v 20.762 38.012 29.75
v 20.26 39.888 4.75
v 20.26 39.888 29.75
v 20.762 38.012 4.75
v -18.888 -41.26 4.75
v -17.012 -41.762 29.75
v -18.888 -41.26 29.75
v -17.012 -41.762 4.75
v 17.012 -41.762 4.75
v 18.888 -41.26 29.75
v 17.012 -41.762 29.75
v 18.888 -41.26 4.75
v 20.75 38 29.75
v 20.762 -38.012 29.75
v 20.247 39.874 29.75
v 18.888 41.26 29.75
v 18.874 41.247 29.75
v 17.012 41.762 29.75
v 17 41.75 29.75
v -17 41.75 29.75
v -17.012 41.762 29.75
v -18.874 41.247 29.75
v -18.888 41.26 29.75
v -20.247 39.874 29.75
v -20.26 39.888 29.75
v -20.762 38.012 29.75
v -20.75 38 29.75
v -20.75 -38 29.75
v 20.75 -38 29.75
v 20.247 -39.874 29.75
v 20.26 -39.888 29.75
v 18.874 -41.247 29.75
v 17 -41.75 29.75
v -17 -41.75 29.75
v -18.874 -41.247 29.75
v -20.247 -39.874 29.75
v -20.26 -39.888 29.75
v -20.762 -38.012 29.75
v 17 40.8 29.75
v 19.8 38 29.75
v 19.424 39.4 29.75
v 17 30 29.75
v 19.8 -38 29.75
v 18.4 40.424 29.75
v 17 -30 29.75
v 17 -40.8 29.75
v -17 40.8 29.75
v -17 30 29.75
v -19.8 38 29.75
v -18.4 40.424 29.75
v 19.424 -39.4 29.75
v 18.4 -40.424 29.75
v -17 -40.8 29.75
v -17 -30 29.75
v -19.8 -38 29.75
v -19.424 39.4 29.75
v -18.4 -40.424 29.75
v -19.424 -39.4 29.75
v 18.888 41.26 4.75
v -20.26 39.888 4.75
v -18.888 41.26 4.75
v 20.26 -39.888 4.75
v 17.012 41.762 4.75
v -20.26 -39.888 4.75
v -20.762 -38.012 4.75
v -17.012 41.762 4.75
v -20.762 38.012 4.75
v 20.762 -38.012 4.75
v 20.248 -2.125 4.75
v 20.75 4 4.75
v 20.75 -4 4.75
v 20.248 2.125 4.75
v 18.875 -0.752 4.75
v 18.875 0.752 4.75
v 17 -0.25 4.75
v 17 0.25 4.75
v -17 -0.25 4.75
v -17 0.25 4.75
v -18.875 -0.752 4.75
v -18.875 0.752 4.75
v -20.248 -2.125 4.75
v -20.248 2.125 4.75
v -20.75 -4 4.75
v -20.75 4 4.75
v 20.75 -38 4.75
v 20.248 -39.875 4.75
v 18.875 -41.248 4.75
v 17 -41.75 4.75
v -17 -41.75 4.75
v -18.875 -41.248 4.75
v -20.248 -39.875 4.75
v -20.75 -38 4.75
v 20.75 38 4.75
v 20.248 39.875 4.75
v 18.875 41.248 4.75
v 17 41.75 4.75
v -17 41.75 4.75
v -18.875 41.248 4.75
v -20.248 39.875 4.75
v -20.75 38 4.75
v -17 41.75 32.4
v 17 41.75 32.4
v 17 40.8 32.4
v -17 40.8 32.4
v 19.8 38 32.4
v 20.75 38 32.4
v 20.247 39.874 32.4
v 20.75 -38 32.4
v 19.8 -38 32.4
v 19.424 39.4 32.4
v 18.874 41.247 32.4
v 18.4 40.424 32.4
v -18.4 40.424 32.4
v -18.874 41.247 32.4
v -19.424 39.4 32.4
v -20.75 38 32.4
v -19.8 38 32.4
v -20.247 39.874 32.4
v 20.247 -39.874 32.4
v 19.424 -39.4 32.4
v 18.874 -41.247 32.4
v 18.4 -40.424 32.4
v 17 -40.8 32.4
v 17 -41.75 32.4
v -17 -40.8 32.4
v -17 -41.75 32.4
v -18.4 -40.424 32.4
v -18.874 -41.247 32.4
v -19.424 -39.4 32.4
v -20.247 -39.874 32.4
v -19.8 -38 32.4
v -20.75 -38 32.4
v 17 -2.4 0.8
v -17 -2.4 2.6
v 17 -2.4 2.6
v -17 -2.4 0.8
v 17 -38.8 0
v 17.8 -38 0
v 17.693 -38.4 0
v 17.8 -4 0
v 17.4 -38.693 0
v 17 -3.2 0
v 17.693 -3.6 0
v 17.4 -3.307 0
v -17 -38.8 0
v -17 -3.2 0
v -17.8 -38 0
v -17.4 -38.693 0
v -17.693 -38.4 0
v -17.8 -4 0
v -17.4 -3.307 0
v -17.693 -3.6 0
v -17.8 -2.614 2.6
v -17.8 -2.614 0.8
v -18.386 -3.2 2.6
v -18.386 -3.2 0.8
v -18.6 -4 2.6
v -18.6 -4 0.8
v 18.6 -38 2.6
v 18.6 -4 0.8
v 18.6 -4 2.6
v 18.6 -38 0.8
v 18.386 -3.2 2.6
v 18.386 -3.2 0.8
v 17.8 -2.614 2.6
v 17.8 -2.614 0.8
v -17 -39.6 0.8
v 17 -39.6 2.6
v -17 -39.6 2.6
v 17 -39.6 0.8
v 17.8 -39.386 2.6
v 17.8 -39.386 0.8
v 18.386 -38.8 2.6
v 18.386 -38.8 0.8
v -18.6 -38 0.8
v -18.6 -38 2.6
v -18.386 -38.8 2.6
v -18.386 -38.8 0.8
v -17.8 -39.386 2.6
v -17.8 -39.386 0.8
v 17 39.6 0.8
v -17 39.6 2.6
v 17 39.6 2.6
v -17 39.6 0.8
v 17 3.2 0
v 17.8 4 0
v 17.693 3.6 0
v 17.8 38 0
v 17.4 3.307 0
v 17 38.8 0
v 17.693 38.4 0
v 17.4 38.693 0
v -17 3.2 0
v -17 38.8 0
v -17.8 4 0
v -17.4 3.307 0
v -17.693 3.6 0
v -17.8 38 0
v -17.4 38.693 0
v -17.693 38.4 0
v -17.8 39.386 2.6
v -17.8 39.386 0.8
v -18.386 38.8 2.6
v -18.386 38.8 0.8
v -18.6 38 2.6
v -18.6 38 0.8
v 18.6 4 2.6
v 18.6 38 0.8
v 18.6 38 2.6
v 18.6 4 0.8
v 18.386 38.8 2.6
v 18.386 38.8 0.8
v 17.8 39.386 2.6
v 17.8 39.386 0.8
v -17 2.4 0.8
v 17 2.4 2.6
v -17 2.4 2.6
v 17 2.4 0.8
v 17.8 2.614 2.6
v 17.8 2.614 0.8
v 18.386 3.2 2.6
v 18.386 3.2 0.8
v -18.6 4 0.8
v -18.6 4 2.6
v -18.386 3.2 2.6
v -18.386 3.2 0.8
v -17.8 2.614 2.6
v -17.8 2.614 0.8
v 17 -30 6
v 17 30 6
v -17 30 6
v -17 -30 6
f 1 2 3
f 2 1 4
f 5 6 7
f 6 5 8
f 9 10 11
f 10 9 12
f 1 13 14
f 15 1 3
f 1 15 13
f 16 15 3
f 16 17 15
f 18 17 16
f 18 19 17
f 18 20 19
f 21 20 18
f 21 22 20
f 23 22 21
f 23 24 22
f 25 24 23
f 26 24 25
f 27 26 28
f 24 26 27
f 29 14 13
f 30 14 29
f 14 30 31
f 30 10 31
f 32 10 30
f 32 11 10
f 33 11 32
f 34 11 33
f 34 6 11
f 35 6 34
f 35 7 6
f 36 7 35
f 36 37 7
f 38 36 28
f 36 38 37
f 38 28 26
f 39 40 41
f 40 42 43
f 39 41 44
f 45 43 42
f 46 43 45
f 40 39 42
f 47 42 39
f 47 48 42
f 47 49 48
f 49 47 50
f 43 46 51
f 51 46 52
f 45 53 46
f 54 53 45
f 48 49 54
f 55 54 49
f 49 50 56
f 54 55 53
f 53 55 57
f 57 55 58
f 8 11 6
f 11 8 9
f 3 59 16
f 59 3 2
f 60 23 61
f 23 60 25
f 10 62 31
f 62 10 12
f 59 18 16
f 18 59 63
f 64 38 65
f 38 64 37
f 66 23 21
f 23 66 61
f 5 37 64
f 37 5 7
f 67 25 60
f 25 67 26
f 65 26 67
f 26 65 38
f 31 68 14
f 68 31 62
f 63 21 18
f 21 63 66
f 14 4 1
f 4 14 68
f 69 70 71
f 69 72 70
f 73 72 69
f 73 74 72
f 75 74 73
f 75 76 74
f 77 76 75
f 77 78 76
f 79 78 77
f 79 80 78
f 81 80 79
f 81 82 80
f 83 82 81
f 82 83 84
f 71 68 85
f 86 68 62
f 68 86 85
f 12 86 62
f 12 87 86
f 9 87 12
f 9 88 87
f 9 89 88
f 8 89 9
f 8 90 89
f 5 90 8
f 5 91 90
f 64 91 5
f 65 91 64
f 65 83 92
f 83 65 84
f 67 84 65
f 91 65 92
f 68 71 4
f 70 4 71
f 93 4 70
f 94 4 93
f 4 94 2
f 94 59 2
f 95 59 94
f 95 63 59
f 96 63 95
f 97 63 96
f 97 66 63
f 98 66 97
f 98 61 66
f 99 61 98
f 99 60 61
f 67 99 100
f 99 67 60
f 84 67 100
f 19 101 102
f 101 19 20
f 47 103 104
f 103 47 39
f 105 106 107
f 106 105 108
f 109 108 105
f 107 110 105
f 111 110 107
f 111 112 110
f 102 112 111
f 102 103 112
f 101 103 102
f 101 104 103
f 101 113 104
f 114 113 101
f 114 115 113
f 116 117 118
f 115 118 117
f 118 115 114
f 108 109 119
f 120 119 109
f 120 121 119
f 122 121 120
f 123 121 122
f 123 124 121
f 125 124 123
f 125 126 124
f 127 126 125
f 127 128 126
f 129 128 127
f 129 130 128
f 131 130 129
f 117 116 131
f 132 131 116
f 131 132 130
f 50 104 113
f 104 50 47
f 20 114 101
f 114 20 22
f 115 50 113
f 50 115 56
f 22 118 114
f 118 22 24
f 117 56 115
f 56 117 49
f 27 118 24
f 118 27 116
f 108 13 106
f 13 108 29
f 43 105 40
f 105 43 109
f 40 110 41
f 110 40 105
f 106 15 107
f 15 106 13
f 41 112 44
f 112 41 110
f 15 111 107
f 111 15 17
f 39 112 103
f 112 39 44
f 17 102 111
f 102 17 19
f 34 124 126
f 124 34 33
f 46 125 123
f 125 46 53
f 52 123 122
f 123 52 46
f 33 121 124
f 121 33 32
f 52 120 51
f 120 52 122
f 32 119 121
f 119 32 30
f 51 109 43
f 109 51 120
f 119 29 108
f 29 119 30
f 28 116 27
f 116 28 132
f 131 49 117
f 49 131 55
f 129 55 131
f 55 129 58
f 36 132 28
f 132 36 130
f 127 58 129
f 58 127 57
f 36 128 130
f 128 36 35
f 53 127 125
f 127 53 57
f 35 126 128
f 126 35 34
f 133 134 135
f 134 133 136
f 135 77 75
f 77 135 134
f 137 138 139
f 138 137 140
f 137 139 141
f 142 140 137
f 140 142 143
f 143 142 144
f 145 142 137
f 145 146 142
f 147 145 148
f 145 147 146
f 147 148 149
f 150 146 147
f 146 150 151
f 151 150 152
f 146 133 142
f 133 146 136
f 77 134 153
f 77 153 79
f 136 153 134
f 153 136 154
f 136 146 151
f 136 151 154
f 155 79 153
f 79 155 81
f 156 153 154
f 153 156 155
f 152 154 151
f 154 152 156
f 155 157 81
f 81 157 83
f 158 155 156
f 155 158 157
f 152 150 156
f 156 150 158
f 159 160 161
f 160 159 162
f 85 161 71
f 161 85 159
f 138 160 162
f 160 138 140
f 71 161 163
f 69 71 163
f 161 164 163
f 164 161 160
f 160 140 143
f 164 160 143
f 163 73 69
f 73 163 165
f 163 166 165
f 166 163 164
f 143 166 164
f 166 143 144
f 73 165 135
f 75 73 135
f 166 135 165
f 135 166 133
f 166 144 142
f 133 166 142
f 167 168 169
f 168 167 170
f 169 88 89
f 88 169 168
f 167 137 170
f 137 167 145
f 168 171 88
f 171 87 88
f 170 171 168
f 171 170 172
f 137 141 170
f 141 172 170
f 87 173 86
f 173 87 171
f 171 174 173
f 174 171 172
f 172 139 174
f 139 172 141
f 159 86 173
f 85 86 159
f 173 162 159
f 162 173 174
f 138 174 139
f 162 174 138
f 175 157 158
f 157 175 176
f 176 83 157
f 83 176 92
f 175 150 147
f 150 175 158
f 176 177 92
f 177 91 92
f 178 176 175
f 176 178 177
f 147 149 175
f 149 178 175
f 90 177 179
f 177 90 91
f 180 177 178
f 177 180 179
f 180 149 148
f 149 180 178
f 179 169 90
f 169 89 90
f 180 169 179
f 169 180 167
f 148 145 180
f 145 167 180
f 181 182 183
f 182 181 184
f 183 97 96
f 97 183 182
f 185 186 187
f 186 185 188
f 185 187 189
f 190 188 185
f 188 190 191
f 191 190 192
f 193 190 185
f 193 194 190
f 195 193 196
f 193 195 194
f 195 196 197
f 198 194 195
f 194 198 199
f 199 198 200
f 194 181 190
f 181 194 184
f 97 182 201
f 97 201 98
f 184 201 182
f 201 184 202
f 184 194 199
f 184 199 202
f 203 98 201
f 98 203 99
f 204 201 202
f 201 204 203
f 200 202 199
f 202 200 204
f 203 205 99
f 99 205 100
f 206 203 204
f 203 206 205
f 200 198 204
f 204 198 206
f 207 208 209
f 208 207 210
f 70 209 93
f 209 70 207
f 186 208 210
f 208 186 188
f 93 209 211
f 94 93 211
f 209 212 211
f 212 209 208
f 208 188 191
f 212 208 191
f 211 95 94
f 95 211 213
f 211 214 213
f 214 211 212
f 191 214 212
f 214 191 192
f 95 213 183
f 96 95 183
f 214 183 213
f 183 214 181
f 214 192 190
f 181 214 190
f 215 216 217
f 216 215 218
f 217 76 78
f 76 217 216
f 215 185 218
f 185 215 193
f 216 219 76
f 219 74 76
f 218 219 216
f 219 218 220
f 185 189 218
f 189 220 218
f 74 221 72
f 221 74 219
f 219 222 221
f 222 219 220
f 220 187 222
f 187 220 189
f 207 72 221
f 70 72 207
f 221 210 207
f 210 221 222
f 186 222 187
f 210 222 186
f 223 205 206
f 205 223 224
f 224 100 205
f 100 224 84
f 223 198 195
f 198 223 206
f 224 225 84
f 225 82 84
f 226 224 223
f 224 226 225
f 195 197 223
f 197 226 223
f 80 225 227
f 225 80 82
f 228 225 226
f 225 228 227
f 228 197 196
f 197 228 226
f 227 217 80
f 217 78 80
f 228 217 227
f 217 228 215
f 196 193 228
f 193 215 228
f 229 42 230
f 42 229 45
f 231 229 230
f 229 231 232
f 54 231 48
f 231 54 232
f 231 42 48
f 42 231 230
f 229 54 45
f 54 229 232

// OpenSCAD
use <entrypoint.scad>

difference() {
    custom_bin(gridx = 1, gridy = 2, height_internal = 25); 
    translate([-17, -30, 6]) cube([34, 60, 100]);
}
